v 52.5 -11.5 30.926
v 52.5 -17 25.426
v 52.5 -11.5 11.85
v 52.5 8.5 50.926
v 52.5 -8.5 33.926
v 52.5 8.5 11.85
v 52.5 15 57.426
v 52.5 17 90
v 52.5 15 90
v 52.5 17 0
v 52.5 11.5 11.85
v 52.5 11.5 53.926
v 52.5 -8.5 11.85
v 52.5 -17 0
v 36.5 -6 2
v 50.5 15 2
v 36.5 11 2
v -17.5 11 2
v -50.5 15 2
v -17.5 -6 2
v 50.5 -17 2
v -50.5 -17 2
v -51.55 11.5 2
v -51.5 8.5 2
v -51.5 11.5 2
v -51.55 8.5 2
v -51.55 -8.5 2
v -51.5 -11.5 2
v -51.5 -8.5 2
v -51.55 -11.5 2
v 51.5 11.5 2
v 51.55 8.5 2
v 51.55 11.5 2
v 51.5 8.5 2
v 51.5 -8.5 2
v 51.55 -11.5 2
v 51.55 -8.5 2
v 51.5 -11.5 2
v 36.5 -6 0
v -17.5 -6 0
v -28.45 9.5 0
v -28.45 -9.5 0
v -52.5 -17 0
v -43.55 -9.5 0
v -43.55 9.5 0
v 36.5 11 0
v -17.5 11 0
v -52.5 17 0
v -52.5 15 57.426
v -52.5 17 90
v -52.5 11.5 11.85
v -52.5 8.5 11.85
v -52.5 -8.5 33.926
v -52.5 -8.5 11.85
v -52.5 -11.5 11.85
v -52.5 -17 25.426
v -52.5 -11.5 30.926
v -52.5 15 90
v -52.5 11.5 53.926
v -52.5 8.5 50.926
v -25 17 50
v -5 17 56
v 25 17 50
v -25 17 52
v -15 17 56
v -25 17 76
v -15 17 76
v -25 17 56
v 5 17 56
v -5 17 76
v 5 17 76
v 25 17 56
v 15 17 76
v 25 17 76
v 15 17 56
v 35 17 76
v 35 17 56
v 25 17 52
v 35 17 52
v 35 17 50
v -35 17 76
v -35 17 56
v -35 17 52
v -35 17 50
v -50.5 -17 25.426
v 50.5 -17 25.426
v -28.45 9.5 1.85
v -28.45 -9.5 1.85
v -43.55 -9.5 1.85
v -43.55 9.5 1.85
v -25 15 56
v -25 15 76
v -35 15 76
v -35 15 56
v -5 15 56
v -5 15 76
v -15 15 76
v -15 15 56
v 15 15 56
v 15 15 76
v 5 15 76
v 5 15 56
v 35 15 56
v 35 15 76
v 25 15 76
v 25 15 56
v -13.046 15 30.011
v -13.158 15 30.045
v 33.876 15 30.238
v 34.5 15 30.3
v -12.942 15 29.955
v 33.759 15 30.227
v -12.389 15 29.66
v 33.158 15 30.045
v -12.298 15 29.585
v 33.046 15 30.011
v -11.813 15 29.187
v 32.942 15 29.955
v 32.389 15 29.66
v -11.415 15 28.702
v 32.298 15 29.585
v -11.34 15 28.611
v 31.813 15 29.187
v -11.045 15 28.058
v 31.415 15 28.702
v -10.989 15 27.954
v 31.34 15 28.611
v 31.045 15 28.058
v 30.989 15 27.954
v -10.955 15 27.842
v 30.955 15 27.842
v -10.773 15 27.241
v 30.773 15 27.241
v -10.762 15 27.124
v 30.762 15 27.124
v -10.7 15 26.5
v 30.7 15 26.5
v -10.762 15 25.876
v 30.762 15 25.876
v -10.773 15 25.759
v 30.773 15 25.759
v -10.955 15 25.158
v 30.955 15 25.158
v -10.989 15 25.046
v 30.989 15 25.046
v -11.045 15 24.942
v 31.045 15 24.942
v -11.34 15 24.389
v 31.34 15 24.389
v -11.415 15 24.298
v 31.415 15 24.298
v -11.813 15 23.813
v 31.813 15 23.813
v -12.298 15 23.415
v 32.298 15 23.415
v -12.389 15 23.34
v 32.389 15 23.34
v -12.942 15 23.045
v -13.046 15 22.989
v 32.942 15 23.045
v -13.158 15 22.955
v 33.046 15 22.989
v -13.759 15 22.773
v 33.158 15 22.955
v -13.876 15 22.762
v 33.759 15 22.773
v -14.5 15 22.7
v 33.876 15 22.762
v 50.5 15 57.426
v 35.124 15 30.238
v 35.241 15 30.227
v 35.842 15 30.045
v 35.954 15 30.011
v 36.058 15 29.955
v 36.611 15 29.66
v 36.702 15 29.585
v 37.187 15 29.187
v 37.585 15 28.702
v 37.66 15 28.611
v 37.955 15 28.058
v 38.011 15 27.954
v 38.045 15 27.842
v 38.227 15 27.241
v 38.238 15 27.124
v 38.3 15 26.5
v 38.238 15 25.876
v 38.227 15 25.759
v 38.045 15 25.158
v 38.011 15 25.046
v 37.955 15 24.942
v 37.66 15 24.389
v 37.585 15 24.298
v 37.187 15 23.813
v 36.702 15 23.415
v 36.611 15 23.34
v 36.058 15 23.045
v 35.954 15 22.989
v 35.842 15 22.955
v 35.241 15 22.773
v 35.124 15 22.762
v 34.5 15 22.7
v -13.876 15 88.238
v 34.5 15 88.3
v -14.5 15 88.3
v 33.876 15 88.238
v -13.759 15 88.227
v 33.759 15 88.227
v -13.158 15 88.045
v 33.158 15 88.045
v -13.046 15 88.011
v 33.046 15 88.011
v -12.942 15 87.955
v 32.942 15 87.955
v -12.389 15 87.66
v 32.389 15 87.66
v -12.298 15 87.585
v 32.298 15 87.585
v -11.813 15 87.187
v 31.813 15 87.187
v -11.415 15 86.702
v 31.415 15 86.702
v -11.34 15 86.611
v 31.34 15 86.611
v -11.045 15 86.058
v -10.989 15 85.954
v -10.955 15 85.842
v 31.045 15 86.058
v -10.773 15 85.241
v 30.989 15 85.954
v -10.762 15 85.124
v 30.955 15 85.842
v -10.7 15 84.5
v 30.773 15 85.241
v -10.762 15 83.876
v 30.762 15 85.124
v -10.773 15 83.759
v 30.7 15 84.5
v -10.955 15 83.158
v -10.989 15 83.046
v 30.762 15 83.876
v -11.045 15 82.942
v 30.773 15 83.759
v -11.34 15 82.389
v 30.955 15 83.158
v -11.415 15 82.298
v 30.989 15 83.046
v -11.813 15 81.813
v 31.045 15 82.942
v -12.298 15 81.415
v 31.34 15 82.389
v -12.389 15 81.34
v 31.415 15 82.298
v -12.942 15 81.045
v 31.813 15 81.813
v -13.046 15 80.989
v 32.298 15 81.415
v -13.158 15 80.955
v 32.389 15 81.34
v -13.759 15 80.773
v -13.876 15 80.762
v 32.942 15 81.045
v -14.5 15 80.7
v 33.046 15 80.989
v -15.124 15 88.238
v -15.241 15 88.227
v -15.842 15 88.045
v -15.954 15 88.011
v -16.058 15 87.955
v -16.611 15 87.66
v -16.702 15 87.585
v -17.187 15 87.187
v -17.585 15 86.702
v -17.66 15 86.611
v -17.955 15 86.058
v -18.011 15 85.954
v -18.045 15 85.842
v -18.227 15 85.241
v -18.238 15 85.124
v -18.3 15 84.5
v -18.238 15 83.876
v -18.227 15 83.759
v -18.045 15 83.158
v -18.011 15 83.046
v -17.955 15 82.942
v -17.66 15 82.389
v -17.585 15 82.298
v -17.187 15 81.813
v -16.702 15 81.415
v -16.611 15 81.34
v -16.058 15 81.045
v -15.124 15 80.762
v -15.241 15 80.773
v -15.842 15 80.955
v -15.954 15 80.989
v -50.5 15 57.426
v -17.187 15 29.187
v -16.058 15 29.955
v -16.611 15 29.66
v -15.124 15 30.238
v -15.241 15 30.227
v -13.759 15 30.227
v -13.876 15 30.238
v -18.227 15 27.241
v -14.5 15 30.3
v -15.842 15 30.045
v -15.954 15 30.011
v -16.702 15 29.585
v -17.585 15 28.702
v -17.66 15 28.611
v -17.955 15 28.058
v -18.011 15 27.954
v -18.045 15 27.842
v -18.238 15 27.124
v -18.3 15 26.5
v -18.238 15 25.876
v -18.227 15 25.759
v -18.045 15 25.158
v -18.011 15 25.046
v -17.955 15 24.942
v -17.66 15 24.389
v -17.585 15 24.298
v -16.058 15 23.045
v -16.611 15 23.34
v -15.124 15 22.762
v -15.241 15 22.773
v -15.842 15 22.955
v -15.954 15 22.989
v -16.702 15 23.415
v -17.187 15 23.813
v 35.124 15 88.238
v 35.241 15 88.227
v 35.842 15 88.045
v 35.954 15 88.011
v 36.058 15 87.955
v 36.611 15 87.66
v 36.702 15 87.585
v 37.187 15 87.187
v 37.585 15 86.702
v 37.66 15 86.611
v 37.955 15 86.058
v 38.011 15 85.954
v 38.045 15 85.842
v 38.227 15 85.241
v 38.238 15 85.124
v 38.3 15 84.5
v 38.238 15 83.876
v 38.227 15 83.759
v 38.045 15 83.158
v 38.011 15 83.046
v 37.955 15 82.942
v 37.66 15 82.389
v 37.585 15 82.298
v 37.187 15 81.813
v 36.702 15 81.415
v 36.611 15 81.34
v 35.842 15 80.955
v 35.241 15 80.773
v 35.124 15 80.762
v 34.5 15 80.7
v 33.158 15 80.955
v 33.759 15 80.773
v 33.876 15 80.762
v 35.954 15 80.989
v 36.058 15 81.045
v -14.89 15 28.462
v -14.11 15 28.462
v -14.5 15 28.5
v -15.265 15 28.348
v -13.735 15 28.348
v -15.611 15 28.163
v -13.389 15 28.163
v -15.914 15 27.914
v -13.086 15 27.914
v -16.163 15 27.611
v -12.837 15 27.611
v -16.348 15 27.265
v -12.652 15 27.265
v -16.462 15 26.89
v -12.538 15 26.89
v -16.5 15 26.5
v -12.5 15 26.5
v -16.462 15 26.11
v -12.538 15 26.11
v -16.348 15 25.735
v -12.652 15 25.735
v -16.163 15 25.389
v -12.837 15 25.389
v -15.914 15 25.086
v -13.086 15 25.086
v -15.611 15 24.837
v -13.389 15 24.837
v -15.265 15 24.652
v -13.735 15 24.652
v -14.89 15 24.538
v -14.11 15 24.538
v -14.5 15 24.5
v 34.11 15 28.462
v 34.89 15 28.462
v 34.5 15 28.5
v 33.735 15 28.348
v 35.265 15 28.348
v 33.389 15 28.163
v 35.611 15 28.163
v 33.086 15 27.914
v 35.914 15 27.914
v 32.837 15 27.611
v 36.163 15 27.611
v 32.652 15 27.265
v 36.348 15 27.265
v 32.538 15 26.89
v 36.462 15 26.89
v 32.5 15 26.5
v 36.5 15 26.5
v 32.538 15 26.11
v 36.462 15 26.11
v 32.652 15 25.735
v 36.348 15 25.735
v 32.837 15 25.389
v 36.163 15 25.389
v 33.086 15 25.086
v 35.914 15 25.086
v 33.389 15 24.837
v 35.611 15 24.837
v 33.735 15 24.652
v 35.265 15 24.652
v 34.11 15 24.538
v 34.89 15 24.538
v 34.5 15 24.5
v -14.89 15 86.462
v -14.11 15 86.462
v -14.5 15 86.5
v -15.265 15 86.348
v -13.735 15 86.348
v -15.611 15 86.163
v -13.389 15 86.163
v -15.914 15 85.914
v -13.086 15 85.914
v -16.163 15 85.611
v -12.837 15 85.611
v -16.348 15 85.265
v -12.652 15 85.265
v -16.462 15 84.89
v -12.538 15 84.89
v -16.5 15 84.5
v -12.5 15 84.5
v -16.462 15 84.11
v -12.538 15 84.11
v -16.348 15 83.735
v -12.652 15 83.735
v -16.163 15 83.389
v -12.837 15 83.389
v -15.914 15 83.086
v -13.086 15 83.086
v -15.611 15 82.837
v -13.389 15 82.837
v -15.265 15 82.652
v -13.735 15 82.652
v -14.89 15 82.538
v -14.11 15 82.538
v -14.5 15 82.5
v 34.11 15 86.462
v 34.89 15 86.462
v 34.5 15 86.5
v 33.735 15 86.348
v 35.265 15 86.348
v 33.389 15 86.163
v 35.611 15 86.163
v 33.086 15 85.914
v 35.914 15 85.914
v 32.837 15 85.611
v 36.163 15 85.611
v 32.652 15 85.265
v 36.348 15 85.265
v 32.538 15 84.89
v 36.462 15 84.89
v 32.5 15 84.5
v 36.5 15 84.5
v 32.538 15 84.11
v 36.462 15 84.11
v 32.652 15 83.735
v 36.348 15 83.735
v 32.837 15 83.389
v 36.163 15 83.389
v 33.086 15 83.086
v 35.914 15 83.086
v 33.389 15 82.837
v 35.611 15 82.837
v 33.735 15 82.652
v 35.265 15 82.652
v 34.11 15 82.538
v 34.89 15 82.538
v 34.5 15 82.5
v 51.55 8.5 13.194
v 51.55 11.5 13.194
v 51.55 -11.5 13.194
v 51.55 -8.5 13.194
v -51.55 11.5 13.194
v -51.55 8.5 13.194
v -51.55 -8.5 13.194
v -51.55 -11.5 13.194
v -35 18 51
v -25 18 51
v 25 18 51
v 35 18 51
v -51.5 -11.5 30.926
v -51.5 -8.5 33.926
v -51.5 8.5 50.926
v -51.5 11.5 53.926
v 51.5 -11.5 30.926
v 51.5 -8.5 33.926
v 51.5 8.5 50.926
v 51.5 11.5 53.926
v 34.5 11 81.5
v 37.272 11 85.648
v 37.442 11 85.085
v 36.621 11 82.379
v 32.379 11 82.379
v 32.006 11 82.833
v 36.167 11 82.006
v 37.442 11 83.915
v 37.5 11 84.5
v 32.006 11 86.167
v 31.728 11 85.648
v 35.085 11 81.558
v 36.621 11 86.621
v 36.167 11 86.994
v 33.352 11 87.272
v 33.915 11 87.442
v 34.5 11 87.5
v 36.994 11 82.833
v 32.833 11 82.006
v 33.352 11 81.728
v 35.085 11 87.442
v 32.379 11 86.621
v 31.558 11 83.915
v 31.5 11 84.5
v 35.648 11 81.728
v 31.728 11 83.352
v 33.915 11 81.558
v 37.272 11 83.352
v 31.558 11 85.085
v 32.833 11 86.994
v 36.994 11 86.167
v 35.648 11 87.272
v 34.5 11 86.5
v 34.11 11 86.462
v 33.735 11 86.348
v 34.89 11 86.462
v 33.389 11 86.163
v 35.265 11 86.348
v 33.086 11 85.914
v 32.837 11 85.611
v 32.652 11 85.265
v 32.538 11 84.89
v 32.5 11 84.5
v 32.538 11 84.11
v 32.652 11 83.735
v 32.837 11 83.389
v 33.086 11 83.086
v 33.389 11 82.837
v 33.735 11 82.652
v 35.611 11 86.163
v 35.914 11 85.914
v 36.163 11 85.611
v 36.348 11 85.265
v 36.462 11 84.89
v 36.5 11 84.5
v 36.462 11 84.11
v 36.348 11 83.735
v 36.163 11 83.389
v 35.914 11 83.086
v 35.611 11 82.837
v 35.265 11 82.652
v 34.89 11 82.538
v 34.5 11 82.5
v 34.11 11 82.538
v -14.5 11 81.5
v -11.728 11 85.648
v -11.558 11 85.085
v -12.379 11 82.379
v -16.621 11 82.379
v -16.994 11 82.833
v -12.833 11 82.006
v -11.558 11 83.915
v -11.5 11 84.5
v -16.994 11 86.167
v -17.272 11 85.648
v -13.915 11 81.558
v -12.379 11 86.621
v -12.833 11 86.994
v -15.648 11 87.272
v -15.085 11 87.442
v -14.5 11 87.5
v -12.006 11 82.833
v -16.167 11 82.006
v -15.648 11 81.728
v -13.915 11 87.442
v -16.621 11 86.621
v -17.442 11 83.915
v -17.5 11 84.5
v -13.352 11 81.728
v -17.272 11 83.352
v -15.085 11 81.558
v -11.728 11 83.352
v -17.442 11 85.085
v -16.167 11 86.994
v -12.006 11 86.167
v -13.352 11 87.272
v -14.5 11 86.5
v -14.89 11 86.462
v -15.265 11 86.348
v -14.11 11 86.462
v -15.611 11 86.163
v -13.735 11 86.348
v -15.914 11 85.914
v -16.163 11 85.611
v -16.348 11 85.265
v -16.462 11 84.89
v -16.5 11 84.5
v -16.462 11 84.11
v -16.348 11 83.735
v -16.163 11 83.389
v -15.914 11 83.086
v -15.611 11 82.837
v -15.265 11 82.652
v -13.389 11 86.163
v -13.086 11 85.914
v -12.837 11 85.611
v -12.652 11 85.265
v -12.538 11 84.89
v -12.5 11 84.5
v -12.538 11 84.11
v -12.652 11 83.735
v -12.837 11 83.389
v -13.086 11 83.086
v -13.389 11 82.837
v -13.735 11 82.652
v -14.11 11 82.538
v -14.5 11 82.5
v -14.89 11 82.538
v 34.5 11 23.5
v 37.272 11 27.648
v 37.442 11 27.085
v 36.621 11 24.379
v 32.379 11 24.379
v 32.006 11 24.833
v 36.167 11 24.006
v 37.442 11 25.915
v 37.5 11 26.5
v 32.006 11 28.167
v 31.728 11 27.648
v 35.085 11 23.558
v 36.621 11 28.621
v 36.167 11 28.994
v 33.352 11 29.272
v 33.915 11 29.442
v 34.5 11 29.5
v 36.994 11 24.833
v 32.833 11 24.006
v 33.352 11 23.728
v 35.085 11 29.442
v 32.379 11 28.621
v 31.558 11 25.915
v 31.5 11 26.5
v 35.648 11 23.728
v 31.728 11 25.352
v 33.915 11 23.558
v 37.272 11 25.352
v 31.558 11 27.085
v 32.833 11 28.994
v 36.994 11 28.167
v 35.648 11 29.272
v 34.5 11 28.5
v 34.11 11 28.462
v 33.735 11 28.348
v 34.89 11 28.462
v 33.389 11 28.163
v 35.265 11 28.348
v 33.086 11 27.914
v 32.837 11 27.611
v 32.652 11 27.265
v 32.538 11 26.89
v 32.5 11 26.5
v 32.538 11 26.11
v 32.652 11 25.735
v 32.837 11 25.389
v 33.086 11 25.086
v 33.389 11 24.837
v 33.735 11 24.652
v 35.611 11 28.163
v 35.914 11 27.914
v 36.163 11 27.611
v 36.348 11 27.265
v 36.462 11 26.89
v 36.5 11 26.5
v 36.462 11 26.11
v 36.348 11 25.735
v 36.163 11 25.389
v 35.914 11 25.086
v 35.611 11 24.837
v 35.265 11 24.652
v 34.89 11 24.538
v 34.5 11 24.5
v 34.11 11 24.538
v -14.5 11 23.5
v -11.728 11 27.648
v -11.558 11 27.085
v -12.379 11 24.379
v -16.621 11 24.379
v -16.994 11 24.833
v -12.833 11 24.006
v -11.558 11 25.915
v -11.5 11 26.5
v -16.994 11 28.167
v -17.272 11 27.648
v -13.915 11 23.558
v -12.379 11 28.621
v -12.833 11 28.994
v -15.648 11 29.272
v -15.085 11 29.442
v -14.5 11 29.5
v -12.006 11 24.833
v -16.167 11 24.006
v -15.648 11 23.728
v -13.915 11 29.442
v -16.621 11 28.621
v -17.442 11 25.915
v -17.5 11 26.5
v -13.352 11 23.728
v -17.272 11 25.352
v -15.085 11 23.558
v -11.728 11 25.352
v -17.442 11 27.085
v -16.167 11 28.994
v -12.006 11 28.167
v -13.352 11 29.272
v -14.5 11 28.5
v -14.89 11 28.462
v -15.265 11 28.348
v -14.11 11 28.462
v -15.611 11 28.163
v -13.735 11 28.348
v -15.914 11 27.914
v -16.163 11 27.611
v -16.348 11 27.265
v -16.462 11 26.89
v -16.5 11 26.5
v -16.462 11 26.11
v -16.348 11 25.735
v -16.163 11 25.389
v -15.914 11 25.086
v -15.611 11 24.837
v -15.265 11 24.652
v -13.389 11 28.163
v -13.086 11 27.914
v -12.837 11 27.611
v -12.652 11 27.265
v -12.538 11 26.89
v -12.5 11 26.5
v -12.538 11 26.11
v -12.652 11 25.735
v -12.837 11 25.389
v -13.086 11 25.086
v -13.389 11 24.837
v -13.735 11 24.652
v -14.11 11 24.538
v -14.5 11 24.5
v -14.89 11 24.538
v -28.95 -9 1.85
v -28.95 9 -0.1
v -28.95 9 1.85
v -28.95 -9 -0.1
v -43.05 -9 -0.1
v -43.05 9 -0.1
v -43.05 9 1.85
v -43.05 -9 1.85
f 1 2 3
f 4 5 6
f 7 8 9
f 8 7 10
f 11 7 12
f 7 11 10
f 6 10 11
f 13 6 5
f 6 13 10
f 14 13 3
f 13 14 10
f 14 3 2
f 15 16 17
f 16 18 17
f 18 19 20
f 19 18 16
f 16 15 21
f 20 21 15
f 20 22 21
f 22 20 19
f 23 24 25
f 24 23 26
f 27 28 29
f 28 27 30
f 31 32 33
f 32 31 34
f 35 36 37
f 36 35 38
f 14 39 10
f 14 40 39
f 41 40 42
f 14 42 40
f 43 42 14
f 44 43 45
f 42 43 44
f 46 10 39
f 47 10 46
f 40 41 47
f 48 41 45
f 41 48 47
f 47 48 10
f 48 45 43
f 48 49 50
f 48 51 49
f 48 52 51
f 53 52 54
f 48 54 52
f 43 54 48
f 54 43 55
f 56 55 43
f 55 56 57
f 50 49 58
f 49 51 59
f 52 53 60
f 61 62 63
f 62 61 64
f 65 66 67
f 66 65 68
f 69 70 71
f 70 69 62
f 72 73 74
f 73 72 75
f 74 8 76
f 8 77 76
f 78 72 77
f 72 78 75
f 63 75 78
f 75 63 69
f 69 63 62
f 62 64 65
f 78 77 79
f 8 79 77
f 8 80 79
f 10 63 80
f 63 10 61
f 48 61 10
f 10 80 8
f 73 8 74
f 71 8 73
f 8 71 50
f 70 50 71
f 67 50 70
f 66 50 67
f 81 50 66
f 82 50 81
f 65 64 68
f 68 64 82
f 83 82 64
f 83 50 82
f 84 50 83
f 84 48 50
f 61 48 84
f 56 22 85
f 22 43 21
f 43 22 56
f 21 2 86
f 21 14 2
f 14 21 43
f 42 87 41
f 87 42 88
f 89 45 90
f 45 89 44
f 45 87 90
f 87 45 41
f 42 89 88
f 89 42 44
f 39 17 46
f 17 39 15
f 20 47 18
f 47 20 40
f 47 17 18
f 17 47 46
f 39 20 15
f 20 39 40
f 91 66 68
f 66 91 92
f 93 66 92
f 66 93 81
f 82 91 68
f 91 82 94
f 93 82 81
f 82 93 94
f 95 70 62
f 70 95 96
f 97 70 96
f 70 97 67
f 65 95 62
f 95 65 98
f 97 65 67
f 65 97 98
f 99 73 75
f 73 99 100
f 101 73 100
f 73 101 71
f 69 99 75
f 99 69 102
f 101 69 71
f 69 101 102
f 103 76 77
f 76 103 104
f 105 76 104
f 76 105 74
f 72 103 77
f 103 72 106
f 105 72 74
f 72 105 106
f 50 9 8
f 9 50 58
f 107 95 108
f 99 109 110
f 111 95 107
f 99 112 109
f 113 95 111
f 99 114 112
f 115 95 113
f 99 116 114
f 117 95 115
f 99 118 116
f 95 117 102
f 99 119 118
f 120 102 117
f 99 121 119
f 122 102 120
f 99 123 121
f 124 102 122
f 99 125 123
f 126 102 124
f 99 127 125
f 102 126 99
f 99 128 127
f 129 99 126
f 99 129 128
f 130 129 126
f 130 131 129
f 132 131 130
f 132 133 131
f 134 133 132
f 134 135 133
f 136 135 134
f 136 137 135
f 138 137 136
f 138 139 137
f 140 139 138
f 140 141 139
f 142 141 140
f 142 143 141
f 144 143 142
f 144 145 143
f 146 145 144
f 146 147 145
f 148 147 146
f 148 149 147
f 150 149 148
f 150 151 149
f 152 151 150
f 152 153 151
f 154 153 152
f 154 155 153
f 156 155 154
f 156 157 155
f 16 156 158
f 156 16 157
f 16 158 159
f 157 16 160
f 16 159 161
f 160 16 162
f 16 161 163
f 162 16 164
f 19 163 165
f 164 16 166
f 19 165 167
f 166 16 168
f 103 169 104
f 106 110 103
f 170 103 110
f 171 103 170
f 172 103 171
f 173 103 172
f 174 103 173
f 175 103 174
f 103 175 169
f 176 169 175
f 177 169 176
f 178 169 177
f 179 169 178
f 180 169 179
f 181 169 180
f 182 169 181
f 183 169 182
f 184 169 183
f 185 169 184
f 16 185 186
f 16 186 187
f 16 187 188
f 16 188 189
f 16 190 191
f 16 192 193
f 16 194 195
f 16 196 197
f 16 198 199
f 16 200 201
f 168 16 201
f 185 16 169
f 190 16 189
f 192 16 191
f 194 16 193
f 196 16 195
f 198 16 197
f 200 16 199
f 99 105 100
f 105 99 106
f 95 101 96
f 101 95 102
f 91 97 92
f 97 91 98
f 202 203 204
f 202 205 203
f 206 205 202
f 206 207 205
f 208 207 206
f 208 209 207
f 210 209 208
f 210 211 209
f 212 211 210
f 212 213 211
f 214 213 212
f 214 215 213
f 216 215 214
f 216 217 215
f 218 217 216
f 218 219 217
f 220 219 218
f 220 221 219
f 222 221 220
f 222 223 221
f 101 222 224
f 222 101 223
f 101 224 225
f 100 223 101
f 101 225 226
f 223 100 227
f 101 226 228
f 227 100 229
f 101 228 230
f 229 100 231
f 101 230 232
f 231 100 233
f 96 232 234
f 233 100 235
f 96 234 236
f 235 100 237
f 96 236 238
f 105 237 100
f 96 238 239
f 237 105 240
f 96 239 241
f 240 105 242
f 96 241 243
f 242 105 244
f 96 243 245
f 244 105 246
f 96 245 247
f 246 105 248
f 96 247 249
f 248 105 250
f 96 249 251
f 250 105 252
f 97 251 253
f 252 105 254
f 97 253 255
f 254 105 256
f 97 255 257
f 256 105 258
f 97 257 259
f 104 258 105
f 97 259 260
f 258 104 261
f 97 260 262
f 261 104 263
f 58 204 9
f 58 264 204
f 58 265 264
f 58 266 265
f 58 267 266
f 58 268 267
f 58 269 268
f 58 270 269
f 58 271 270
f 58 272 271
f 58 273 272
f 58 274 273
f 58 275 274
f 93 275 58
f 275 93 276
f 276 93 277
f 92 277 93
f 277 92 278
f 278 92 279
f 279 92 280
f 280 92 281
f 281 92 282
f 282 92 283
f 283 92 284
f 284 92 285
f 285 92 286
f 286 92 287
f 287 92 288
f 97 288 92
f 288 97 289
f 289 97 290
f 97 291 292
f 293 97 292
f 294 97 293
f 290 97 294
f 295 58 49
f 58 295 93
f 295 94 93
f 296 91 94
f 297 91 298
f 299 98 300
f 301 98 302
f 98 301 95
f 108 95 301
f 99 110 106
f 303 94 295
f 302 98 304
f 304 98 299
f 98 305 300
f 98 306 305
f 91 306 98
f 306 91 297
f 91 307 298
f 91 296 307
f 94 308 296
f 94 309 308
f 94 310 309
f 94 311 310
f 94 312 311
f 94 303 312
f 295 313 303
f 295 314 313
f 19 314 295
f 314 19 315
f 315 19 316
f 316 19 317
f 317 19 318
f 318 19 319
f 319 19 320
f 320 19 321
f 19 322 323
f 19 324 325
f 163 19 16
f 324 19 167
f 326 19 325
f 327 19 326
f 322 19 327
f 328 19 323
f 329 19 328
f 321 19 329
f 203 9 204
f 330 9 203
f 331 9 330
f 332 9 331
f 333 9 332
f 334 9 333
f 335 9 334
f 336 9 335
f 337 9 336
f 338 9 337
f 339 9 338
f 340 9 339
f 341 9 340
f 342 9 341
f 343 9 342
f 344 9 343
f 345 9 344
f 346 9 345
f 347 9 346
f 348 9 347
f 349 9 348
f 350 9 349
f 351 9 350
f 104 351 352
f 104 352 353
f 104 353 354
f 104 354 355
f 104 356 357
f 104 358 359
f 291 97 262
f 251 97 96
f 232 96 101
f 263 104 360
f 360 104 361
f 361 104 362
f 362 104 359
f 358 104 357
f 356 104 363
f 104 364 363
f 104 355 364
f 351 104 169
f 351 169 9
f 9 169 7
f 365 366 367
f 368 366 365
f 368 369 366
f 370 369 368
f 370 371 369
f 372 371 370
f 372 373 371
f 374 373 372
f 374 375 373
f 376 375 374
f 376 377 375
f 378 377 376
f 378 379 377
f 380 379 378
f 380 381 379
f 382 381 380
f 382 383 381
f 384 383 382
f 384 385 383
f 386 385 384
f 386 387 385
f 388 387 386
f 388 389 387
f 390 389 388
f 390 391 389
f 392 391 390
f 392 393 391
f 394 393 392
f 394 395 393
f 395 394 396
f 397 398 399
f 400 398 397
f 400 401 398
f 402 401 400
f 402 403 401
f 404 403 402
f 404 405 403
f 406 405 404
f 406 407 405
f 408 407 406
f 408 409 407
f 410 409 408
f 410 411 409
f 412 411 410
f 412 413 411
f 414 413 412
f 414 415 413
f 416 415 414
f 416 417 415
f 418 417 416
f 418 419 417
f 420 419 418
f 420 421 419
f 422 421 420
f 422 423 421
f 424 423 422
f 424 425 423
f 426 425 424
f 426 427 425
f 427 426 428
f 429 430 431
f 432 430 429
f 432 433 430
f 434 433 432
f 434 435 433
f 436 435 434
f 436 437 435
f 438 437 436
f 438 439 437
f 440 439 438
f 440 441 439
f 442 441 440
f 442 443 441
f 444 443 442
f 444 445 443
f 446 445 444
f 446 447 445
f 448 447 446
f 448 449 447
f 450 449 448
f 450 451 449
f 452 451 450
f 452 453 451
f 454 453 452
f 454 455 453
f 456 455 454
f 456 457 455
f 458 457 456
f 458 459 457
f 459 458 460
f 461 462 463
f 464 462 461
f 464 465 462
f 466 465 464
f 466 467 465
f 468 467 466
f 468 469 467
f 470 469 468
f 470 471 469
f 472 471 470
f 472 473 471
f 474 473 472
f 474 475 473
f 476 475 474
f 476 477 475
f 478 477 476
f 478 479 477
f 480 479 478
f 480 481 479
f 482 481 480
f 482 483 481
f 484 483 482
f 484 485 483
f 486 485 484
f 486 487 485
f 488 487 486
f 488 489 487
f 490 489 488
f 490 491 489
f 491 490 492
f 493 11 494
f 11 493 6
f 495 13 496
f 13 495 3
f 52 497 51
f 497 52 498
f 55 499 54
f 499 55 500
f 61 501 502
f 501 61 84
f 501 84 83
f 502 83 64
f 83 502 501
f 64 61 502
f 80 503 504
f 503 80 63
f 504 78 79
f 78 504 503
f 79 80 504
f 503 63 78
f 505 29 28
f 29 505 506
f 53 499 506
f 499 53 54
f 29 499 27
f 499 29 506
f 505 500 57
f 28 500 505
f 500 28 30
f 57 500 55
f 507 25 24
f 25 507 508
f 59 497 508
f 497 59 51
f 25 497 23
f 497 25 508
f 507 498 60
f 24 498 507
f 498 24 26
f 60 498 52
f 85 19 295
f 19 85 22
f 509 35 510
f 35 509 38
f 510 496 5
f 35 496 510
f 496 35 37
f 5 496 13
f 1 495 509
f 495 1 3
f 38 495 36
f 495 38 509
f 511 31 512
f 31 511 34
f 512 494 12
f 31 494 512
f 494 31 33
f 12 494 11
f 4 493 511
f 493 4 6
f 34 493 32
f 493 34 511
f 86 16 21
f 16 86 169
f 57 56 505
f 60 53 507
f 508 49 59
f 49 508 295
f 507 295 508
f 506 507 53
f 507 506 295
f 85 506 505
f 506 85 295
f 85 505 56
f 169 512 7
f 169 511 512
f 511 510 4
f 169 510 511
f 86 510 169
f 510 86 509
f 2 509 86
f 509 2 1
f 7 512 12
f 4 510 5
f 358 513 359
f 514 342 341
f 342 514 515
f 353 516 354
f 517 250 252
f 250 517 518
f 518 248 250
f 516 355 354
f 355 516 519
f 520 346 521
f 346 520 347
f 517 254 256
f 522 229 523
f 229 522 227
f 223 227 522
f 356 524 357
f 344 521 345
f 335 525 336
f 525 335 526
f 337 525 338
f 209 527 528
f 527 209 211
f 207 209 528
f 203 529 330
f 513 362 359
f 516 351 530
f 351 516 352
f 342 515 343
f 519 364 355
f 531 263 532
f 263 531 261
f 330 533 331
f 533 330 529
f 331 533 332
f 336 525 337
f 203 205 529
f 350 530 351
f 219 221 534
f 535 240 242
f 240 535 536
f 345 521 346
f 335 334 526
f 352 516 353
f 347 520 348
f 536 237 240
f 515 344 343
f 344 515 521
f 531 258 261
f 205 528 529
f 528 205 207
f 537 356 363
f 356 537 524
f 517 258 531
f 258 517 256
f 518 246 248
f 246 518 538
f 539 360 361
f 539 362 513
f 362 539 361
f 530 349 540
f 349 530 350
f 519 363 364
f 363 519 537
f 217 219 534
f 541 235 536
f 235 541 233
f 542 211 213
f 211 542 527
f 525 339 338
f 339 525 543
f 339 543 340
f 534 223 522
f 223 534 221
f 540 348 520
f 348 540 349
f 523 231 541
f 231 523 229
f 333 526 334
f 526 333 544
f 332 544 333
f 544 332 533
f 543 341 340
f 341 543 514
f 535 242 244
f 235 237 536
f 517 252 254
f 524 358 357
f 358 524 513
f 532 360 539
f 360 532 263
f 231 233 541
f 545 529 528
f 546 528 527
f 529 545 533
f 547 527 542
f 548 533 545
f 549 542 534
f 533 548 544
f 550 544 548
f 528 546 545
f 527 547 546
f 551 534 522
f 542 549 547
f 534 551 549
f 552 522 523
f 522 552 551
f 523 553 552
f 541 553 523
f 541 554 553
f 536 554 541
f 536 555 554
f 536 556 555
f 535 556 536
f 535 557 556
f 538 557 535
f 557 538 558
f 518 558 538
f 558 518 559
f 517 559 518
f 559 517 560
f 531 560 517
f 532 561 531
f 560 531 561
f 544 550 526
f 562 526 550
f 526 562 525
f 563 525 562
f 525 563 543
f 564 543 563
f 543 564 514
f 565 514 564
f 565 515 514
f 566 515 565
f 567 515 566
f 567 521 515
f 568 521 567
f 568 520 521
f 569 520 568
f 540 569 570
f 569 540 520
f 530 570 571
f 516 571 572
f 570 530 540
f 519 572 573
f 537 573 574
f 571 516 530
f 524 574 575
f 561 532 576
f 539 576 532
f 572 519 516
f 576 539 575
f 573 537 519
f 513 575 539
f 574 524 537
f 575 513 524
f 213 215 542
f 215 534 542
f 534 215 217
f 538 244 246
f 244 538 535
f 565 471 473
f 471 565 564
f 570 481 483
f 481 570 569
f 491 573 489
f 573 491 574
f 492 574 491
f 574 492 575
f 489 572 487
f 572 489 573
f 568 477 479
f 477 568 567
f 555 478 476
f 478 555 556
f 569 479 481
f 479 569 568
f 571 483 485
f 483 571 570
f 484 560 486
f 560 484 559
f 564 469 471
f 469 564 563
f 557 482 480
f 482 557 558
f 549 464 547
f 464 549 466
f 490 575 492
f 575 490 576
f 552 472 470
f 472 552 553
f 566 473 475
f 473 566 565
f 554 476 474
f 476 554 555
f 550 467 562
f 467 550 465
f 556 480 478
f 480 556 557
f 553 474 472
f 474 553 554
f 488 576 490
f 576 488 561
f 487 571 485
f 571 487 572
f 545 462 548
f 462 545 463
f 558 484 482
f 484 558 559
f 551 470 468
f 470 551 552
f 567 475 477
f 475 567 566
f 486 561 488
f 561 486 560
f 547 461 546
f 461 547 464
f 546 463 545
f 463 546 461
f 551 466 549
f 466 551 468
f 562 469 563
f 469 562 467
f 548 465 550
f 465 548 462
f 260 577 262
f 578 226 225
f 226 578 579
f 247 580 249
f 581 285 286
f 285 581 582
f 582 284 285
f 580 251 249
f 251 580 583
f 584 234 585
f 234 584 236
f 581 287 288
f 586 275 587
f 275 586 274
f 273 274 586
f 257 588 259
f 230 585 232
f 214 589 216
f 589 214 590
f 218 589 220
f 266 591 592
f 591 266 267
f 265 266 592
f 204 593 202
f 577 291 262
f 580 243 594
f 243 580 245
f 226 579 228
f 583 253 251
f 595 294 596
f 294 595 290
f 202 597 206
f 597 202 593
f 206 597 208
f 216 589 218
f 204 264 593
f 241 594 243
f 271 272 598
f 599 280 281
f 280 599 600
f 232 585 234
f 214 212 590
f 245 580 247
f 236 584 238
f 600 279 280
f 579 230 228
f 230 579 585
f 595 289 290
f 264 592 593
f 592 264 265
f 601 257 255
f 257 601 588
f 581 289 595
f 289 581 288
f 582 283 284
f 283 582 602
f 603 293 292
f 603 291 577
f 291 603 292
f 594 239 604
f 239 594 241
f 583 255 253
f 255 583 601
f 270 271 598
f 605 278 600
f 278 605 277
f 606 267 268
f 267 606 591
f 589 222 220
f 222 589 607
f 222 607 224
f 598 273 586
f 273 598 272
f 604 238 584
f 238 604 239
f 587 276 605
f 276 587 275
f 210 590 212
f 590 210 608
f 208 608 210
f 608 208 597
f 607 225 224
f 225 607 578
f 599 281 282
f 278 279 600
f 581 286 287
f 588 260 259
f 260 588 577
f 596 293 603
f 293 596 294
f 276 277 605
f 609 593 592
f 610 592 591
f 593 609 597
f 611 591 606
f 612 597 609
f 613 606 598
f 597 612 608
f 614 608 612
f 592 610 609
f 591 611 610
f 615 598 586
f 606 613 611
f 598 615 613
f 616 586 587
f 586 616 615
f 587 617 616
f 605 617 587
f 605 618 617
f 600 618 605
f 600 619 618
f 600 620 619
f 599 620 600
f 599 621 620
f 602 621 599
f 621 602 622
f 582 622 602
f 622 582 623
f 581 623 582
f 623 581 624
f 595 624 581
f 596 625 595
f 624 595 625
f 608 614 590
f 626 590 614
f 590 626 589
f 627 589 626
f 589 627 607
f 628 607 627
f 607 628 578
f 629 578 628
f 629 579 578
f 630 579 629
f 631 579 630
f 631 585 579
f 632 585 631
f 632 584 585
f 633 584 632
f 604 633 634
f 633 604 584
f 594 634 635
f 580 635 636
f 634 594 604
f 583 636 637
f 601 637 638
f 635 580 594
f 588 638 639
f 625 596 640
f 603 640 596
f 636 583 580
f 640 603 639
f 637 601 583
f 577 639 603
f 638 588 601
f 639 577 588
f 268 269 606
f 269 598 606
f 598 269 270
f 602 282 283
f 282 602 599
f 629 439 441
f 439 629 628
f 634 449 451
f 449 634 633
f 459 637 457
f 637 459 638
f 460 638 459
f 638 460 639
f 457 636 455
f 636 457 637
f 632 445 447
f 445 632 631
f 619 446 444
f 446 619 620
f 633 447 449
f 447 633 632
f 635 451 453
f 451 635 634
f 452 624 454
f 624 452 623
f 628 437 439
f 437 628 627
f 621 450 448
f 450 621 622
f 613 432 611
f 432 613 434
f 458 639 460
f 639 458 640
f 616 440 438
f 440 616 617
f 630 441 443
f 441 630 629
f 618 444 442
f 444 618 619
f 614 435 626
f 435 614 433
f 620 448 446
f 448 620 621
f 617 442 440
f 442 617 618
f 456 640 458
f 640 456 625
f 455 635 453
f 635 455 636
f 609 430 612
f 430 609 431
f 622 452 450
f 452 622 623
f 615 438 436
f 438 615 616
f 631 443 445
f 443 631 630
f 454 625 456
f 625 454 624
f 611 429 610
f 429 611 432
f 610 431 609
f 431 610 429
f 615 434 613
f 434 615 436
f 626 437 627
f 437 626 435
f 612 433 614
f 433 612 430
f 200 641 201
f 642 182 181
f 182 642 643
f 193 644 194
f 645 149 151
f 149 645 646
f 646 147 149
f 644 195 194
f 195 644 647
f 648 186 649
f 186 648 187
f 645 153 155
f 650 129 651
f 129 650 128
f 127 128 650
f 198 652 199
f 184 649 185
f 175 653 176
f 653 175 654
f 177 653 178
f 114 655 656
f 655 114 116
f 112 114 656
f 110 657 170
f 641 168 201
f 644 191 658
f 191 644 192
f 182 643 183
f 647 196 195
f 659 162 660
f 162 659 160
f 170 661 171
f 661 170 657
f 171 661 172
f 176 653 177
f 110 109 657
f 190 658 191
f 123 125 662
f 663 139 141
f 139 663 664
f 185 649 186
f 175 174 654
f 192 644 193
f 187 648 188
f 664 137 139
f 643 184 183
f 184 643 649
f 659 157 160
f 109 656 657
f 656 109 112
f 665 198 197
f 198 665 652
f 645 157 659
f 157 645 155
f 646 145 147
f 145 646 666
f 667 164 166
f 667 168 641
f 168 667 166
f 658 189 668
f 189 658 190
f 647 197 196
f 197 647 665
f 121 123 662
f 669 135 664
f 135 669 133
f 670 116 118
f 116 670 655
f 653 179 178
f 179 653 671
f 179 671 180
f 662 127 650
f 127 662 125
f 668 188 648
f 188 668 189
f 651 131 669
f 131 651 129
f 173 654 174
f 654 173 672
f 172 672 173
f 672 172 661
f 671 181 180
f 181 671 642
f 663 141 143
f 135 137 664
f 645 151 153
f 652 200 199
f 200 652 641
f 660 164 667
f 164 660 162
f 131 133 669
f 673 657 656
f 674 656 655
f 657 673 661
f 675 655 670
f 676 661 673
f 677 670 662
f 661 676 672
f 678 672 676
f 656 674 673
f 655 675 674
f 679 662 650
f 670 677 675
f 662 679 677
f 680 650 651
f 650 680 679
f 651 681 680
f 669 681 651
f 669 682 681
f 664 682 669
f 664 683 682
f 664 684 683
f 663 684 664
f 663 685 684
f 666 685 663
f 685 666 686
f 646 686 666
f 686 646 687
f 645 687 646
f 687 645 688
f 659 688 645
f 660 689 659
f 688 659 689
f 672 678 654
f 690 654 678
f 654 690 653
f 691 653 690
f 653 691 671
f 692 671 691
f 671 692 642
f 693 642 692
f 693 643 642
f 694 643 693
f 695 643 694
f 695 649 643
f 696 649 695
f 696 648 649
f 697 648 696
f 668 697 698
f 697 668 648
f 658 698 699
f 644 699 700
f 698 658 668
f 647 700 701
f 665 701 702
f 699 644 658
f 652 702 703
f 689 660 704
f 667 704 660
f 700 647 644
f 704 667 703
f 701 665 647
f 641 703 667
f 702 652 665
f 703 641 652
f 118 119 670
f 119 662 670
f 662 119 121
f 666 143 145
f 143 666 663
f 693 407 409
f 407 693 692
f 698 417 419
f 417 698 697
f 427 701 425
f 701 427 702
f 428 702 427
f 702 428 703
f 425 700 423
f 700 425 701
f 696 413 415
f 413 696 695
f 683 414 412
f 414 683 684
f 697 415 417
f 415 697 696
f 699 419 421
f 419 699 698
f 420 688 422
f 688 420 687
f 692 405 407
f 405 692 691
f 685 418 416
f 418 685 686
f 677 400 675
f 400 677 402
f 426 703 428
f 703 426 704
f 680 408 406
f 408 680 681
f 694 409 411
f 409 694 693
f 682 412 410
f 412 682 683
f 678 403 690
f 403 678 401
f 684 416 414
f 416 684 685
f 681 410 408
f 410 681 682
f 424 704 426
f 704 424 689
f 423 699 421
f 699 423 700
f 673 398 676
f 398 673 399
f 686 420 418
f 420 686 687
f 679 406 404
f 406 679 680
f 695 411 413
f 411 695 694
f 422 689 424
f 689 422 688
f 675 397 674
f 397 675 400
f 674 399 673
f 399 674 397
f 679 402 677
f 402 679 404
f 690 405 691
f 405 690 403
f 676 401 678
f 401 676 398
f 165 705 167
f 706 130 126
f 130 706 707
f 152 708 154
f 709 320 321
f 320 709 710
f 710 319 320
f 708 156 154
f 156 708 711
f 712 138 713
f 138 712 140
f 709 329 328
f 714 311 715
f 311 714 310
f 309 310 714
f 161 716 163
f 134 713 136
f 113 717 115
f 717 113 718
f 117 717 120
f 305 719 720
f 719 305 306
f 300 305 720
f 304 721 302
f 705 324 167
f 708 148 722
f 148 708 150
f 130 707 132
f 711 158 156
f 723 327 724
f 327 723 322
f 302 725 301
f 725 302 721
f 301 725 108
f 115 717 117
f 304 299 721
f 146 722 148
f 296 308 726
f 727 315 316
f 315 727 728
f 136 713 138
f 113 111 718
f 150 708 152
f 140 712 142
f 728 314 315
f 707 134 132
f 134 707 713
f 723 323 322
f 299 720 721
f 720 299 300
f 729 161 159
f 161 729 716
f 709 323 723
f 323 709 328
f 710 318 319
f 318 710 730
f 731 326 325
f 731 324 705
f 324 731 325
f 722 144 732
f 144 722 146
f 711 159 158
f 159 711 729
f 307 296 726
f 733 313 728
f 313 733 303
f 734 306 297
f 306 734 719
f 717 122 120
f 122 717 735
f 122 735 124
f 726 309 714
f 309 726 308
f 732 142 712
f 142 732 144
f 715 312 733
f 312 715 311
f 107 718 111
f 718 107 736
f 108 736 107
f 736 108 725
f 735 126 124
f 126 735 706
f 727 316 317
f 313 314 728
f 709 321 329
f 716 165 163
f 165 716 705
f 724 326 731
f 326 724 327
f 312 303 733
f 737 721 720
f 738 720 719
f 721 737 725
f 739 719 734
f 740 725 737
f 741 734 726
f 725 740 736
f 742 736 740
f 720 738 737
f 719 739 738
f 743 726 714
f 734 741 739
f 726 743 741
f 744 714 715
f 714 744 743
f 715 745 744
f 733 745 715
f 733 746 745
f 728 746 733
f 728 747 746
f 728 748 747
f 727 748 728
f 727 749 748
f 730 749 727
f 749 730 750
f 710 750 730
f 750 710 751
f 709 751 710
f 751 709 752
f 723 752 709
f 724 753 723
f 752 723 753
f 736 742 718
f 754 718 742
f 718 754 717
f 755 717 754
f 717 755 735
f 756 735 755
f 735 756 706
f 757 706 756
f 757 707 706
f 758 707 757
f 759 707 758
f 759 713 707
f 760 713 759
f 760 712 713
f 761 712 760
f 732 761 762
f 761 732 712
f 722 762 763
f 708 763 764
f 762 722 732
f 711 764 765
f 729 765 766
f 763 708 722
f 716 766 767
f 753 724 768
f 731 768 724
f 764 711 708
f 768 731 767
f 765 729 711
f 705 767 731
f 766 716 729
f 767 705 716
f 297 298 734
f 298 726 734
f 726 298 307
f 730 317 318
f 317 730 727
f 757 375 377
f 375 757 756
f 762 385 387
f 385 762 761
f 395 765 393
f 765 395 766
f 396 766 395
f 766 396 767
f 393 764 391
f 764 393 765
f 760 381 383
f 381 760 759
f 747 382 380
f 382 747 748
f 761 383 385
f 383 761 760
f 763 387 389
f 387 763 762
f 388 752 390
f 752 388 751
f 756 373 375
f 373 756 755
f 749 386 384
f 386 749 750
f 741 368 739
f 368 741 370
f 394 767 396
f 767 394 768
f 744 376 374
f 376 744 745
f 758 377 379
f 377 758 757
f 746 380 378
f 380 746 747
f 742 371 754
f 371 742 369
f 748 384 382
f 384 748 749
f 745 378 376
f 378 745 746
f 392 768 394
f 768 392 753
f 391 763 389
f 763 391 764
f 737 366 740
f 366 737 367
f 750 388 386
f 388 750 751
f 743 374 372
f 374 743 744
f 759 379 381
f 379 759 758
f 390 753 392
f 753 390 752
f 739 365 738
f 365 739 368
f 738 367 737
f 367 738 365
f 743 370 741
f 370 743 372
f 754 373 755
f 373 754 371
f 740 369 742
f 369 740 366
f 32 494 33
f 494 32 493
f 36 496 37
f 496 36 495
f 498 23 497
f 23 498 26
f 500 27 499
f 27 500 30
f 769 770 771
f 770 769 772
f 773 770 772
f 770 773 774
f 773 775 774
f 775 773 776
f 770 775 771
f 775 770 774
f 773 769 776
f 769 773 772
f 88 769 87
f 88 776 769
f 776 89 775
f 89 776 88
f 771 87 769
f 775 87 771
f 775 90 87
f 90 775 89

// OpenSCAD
W=106-1;
H=35-1;
difference() {

  cube_center([W, H, 2]);
    translate([-36,0,-.1])
    cube_center([15.1, 19.0, 5]);
    
    translate([9.5,2.5,-.1])
    cube_center([54, 17, 5]);
}

translate([-36,0,-.1])
cube_center([15.1-1, 19.0-1, 2]);

translate([-36,0,1.85])
cube_center([15.1, 19.0, .15]);

difference() {
translate([0,H/2-1,0])
cube_center([W, 2, 90]);

for(i=[-30,-10,10,30])
translate([i,H/2-1,56])    
cube_center([10, 3, 20]);
    
}

difference() {
    union() {
        cube_center([W,H,10-.15]);
    translate([0,0,10-.15])
    minkowski() {
        cube_center([W-2,H-2,2]);
        rotate([0,0,45])
        cylinder(d1=2*sqrt(2),d2=0,h=2/sqrt(2),$fn=4);
    }
}
    
    cube_center([W-2+.1,H+5+.1,50]);
}

for(s=[-1,1])
translate([s*30,H/2,50+1])
rotate([0,90,0])
cylinder(d=2,h=10,$fn=4,center=true);


difference() {
    // side panels
for(s=[-1,1])
    scale([s,1,1]) {
        difference() {
    translate([W/2-1,0,0])
    cube_center([2,H,90]);
            // rails
            for(t=[-1,1])
    translate([W/2-1+2-1,t*10,0])
    cube_center([2,3,90]);
            
        }
    }
    
    rotate([45,0,0])
    translate([0,0,30])
    cube_center([200,200,200]);
    
}


translate([10,H/2-1,45.5])
rotate([90,90,0])
raspberrypi();

module raspberrypi() {
    translate([-85/2 + 3.5,49/2,0])
    standoff();
    
    translate([-85/2 + 3.5,-49/2,0])
    standoff();
    
    translate([-85/2 + 3.5 + 58,49/2,0])
    standoff();
    
    translate([-85/2 + 3.5 + 58,-49/2,0])
    standoff();
}


module standoff() {
    difference() {
        cylinder(d1=8,d2=6,h=5,$fn=32);
        cylinder(d=4.0,h=10, $fn=32);
    }
}

/*difference() {
    cube_center([W, H, 2]);
    for(i=[-10:5:10]) for(j=[-47.5:5:47.5])
    translate([j,i,-.1])
    cube_center([3,3,5]);
}*/

/*
translate([-28+10,10,88])
rotate([90,90,0])
import("/home/dheera/code/3d/rack/Raspberry_pi_4_v0.6.stl");
*/

module cube_center(dims,r=0,$fn=64) {
    if(r==0) {
        translate([-dims[0]/2, -dims[1]/2, 0])
        cube(dims);
    } else {
        minkowski() {
            translate([-(dims[0]-2*r)/2, -(dims[1]-2*r)/2, 0])
            cube([dims[0]-2*r,dims[1]-2*r,dims[2]]);
            cylinder(r=r,$fn=$fn,h=0.0001);
        }
    }
}
